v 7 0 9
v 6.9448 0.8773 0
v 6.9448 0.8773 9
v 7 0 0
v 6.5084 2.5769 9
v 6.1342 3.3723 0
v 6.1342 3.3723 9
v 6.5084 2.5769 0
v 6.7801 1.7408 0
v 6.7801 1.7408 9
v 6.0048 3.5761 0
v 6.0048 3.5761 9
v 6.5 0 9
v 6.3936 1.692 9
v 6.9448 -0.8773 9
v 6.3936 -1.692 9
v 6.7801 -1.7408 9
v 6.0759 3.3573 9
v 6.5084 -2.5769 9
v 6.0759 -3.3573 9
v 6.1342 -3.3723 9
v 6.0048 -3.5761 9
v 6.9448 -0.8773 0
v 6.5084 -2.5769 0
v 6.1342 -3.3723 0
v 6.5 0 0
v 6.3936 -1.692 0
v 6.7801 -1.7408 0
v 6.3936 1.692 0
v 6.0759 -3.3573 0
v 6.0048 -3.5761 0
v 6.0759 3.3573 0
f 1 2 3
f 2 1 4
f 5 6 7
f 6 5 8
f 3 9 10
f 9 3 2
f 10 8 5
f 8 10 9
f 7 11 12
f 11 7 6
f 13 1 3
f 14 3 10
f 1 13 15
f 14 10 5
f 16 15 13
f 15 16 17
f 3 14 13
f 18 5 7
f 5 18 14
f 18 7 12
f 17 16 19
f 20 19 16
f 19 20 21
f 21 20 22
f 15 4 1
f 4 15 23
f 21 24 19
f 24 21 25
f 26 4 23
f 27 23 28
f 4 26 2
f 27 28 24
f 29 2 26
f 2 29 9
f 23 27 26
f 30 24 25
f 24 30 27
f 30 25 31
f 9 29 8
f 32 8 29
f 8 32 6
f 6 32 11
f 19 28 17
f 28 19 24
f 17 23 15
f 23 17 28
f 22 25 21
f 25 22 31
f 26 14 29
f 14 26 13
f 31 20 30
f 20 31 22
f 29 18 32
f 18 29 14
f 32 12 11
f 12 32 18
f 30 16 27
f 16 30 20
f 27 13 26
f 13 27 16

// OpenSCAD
$fn = 50;


difference() {
	union() {
		cylinder(h = 9, r = 7.0000000000);
		translate(v = [-10.0000000000, 0, 0]) {
			cylinder(h = 9, r = 7.0000000000);
		}
	}
	union() {
		cylinder(h = 9, r = 3.2500000000);
		cylinder(h = 9, r = 1.8000000000);
		cylinder(h = 9, r = 1.8000000000);
		cylinder(h = 9, r = 1.8000000000);
		translate(v = [-14.5000000000, 0, 0]) {
			hull() {
				translate(v = [-3.7500000000, 0.0000000000, 0]) {
					cylinder(h = 9, r = 7.5000000000);
				}
				translate(v = [3.7500000000, 0.0000000000, 0]) {
					cylinder(h = 9, r = 7.5000000000);
				}
				translate(v = [-3.7500000000, -0.0000000000, 0]) {
					cylinder(h = 9, r = 7.5000000000);
				}
				translate(v = [3.7500000000, -0.0000000000, 0]) {
					cylinder(h = 9, r = 7.5000000000);
				}
			}
		}
		translate(v = [-7.0000000000, 0, 0.0000000000]) {
			cylinder(h = 9, r = 13.5000000000);
		}
	}
}
